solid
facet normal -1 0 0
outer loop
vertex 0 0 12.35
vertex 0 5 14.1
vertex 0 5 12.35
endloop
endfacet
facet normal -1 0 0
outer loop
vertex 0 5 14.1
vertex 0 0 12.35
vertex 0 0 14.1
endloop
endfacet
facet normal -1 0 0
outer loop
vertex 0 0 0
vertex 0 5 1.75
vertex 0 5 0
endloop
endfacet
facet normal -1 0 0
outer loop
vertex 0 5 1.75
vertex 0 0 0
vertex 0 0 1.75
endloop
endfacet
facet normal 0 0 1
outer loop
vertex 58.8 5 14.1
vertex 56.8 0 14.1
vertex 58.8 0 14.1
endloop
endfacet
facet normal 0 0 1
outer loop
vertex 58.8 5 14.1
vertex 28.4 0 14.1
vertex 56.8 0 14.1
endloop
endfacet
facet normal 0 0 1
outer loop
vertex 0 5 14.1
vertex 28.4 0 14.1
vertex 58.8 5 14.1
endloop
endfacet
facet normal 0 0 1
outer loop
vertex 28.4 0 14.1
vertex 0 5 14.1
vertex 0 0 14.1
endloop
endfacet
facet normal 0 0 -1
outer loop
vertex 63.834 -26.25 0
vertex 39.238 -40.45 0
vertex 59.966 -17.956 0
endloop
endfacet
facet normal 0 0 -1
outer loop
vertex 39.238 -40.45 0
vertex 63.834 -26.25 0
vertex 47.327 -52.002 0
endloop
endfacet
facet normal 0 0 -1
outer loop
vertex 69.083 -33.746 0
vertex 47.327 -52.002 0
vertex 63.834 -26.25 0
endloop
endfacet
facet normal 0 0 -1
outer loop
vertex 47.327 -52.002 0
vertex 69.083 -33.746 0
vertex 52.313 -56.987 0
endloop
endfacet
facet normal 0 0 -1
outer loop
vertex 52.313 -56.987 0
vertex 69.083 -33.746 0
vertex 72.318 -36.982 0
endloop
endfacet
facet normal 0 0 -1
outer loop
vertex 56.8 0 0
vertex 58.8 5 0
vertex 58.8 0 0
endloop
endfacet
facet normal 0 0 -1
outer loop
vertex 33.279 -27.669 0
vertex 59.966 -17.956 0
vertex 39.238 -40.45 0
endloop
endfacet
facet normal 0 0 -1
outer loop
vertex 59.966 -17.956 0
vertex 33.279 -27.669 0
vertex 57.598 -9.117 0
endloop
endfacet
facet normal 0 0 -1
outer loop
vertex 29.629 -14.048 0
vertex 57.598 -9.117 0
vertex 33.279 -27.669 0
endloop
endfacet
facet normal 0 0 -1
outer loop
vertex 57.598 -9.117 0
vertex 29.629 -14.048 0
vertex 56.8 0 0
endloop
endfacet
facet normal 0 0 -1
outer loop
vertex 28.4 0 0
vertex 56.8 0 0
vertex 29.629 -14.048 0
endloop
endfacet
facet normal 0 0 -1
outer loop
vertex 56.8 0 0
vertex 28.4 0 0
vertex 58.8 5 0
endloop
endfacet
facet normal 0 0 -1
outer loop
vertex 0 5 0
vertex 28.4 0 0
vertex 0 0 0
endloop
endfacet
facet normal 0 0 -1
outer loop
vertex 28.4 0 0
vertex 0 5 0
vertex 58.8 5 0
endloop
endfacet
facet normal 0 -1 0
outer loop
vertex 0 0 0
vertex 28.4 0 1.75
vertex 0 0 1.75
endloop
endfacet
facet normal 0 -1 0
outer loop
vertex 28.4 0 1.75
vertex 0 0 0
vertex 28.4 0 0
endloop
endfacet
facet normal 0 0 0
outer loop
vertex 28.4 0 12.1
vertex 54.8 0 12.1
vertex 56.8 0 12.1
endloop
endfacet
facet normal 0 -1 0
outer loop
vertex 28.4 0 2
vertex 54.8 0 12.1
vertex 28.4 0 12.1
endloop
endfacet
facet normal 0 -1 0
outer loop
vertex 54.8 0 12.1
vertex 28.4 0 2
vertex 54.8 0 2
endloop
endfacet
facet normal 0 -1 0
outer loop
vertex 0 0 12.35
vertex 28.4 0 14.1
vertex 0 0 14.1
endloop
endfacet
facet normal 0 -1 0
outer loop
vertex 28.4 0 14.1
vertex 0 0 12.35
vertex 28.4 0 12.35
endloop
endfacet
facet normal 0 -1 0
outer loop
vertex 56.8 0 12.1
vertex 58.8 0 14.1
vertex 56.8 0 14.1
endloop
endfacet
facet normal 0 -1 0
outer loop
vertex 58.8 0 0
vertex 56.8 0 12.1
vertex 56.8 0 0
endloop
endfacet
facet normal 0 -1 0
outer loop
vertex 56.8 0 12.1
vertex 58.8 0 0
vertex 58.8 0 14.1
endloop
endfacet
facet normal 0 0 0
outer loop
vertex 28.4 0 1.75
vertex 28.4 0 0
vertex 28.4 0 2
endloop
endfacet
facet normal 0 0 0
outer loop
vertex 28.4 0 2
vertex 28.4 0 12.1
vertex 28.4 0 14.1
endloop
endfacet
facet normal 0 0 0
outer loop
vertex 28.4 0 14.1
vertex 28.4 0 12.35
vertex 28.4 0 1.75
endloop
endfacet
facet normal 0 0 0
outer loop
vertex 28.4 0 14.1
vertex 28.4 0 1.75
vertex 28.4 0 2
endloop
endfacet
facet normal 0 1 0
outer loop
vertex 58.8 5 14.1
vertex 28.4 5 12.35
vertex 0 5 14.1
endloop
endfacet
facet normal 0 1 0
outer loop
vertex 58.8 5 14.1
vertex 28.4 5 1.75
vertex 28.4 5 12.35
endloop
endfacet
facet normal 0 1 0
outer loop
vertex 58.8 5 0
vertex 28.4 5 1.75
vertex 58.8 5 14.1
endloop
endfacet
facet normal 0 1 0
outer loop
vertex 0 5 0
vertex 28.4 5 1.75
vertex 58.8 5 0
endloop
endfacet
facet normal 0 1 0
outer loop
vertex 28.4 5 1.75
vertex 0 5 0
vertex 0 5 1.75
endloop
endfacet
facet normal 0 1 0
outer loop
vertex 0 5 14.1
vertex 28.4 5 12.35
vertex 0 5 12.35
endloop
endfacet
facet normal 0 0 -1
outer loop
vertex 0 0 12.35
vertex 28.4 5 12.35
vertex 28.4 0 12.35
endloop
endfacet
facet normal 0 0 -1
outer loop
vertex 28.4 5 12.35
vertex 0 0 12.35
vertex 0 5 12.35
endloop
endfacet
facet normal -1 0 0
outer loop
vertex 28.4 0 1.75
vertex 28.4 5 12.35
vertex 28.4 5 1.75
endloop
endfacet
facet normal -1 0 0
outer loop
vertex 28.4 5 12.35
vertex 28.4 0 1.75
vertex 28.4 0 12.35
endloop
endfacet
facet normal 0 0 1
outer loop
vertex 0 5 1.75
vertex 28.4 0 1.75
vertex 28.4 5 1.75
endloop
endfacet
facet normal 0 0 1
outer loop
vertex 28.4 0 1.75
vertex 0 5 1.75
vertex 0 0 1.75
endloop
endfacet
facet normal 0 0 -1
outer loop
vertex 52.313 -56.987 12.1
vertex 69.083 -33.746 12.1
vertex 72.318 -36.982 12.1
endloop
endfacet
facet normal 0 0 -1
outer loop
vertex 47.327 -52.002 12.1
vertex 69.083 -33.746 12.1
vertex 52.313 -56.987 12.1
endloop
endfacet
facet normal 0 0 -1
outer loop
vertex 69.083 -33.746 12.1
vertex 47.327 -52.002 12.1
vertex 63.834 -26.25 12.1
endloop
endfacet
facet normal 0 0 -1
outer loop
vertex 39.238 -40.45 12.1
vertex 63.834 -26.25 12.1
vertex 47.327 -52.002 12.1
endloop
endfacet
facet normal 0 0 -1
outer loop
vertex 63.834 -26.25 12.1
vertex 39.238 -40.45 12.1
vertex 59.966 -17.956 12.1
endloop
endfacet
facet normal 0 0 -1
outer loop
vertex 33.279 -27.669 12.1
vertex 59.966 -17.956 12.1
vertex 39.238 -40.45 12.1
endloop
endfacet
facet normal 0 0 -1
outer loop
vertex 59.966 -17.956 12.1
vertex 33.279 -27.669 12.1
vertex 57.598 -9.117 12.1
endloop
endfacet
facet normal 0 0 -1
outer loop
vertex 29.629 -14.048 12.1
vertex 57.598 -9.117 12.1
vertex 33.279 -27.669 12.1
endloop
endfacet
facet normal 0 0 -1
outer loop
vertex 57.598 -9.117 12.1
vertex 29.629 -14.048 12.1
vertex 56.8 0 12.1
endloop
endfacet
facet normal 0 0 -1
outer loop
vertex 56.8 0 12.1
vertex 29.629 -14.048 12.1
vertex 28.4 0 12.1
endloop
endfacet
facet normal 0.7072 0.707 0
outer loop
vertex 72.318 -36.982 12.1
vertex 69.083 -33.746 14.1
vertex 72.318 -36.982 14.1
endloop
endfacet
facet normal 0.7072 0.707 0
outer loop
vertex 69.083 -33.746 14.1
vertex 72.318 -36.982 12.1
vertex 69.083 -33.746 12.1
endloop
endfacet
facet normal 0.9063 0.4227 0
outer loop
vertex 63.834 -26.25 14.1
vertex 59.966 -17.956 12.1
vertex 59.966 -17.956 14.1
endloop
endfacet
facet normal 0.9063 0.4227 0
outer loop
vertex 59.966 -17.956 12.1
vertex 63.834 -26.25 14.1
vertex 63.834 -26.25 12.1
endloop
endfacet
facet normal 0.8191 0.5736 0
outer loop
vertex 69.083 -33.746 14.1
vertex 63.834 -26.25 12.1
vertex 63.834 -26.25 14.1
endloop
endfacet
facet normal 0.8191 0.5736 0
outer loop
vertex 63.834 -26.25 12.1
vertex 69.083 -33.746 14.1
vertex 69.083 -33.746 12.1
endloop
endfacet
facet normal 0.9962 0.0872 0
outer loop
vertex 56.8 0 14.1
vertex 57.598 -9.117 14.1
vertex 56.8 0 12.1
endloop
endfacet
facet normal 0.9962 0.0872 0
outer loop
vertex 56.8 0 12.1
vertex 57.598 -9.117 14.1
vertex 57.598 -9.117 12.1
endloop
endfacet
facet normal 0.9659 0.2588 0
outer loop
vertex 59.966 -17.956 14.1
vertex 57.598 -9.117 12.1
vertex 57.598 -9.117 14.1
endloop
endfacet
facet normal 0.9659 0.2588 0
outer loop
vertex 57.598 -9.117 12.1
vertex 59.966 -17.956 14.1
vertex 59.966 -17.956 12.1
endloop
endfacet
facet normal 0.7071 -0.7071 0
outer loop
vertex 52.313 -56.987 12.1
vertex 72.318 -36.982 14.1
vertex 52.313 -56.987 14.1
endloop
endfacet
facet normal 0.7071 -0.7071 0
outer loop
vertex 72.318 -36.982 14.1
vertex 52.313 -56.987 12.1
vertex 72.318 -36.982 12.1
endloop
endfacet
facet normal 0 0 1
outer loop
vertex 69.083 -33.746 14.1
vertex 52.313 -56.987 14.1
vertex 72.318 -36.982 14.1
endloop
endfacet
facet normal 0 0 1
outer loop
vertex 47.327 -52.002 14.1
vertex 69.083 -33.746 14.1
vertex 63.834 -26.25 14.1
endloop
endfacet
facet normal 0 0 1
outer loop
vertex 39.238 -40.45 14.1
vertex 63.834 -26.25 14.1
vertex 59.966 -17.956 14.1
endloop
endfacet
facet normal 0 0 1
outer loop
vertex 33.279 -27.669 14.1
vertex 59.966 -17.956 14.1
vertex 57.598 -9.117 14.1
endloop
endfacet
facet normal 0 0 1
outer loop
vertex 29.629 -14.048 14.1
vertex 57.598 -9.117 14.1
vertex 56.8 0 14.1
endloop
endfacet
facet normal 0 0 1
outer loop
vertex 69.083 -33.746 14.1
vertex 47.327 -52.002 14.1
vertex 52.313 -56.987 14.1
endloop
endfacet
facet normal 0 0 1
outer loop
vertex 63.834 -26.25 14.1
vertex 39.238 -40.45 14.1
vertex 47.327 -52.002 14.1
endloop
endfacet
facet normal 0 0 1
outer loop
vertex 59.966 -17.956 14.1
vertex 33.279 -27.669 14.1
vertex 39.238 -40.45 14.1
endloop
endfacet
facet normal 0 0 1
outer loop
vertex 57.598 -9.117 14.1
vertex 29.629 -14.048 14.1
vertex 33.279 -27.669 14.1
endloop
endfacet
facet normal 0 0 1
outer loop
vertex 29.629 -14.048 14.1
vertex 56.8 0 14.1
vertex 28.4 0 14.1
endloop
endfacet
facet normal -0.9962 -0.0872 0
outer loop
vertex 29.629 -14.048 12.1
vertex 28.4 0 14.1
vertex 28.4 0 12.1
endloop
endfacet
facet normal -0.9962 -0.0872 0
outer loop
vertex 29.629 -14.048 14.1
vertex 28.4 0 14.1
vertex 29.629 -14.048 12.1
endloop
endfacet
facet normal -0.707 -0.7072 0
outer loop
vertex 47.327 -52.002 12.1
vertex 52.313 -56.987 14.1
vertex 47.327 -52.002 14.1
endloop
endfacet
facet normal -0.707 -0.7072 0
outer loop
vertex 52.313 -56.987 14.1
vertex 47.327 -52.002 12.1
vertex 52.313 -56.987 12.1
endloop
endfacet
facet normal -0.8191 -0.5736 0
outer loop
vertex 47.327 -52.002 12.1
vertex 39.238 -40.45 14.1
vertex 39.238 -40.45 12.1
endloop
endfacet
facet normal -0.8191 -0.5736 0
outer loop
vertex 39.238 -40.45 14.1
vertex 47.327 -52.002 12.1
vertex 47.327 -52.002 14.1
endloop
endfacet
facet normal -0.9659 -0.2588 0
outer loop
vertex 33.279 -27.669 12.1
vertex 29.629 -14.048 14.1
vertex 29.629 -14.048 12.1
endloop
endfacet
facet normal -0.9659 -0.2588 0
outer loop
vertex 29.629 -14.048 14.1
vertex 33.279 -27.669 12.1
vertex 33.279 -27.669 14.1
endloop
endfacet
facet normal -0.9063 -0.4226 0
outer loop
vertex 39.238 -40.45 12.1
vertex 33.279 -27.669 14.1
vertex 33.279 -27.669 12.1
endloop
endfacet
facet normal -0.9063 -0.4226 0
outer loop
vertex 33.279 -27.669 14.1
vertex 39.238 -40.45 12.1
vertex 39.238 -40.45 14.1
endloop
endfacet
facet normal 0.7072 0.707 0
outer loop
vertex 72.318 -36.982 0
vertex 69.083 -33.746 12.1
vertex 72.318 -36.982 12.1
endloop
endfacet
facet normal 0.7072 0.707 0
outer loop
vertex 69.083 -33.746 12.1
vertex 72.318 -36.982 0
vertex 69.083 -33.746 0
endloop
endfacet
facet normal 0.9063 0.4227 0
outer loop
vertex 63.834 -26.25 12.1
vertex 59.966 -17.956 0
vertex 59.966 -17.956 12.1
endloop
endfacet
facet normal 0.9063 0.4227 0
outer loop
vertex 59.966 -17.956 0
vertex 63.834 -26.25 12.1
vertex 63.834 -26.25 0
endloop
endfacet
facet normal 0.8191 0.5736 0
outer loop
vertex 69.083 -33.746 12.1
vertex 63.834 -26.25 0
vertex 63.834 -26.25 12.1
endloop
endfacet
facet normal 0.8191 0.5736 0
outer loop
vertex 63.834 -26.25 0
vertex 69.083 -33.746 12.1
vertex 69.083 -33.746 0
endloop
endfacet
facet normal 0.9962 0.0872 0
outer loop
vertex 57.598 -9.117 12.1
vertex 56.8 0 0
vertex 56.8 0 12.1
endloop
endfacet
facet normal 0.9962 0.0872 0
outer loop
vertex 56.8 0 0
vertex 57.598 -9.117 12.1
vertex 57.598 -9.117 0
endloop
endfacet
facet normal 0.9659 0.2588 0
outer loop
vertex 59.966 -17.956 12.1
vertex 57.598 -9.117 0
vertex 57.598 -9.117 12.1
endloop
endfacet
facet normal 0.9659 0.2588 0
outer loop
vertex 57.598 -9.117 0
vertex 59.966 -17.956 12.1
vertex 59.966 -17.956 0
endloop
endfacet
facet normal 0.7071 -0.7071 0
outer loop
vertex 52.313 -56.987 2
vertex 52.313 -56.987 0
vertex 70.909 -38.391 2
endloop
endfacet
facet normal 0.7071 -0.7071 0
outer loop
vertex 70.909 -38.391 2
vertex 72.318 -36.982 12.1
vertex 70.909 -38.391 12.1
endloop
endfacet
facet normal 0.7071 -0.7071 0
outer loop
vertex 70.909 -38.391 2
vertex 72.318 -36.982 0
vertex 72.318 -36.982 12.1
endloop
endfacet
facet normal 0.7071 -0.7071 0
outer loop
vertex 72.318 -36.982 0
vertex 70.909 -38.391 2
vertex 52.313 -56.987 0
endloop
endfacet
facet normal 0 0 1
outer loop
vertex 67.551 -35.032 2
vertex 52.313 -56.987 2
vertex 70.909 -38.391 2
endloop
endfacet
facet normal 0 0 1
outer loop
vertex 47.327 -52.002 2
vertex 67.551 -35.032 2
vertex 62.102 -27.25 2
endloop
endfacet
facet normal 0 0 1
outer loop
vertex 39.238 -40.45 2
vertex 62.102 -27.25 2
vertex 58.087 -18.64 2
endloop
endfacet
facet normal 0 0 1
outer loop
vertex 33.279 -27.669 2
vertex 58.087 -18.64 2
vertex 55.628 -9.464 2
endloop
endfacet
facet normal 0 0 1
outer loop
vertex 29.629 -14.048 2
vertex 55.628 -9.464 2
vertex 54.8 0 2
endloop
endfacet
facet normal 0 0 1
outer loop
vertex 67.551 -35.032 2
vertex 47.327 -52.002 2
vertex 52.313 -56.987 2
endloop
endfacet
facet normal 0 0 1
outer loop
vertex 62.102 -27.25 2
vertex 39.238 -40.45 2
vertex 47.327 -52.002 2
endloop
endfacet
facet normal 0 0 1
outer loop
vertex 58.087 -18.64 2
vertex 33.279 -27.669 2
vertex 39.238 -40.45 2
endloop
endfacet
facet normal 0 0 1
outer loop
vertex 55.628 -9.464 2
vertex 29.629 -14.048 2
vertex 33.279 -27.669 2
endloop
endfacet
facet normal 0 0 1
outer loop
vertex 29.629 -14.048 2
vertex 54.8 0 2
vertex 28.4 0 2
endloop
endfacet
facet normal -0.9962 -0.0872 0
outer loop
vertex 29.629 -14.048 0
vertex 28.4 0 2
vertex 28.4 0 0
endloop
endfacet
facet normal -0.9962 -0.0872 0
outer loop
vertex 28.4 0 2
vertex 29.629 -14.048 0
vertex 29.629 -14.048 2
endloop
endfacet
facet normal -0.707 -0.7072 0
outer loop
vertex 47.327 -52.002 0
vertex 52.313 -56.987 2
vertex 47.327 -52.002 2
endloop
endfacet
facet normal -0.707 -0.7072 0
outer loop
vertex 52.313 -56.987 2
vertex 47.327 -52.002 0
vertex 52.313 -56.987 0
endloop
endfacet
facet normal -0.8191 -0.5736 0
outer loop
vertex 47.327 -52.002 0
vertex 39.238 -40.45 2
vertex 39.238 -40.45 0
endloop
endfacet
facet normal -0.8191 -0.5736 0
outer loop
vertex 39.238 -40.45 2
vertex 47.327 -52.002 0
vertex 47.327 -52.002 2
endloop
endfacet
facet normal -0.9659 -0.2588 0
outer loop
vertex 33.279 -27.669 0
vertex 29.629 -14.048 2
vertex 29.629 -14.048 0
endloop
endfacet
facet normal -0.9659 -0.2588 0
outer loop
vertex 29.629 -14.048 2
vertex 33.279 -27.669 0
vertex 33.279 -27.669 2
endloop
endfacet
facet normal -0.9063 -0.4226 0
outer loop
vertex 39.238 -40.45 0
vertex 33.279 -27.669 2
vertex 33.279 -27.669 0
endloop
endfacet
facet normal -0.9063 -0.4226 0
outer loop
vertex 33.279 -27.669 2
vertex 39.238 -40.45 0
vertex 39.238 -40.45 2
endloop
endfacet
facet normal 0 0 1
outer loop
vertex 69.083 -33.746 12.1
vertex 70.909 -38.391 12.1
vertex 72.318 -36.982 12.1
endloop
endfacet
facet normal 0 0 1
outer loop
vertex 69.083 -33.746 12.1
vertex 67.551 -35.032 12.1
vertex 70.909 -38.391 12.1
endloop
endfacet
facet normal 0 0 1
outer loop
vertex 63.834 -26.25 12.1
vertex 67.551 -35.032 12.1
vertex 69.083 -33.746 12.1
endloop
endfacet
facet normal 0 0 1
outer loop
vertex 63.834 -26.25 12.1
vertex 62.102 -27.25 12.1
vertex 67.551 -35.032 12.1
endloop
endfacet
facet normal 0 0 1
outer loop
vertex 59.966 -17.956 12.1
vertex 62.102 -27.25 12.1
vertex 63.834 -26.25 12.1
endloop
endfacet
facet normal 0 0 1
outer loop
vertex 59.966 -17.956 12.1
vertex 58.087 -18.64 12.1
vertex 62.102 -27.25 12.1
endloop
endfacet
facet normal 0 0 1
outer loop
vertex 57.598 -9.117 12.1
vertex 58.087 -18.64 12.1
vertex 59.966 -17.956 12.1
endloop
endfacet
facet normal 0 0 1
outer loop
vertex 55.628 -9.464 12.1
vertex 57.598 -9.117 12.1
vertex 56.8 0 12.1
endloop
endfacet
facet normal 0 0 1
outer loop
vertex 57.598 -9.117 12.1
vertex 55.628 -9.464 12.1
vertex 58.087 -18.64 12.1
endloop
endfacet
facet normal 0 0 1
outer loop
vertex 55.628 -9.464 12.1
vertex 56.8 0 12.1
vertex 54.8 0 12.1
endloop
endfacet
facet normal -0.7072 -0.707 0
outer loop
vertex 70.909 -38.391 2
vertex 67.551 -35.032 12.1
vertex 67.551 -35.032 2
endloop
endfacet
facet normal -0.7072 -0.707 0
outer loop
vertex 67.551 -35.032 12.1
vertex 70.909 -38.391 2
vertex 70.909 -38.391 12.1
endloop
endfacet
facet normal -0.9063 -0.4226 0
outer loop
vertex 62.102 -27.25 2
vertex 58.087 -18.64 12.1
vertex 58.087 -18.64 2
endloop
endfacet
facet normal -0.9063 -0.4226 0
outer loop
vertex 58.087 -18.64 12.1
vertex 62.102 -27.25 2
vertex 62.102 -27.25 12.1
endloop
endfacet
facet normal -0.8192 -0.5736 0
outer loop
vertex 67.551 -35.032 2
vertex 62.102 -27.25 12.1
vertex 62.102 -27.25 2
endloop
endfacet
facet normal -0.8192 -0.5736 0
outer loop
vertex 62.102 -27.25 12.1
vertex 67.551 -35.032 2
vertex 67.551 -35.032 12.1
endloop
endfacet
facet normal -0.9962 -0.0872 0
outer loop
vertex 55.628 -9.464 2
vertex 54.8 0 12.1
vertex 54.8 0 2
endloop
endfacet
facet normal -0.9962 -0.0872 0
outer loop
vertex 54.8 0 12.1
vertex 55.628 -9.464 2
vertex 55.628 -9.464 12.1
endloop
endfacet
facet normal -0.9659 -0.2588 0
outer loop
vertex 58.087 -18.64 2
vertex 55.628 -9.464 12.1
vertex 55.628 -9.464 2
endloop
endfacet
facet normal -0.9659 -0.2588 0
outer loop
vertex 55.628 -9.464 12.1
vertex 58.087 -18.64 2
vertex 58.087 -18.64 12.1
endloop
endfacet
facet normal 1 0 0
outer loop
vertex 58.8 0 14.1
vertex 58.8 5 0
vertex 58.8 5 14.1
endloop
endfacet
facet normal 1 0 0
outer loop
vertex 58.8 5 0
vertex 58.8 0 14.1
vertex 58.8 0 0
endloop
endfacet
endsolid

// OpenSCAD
//General
$fn = 36;
tolerance = 0.5;
wall = 2;

clip();

module clip() {
  h_bar = wall*2 + 6.1;
  l_bar = 26.4 + wall*2; // length of metal + extra space after and before
  depth_bar = 5;

  r_holder = 105/2; // dimensions of bag holder
  r_holder_outter = r_holder+28.4;
  h_holder = wall;
  color("blue")
  difference(){
    cube([l_bar, depth_bar, h_bar+wall*2]); // outter clip
    translate([-wall,0,wall-tolerance/2])
    cube([l_bar, depth_bar, h_bar+tolerance]); // spacing of metal bar
  }
  translate([l_bar,0,0])
  cube([28.4, depth_bar, h_bar+wall*2]);
  // Below is the clip for the circular garbage bag holder
  // top plate
  color("blue")
  translate([r_holder_outter+l_bar-wall,0,h_bar+wall])
  garbageHolder();
  // bottom plate
  translate([r_holder_outter+l_bar-wall,0,0])
  garbageHolder();
  // middle portion
  translate([r_holder_outter+l_bar-wall,0,wall])
  difference(){
    cylinder(r=r_holder+wall, h=h_bar);
    killOutsideQuarters();
    color("red")
    cylinder(r=r_holder, h=h_bar);
  }

  module garbageHolder(){
    difference(){
      union(){
        cylinder(r=r_holder_outter, h=h_holder);
      }
      killOutsideQuarters();
    }
  }

  module killOutsideQuarters() {
    // Below cubes to kill off 3 quarters of the circle
    cylinder(r=r_holder, h=h_bar);
    color("purple")
    rotate([0,0,-45])
    translate([0,-r_holder_outter,0])
    cube([r_holder_outter*2,r_holder_outter*2,h_bar+wall*2]);
    translate([-r_holder_outter,0,0])
    cube([r_holder_outter*2,r_holder_outter*2,h_bar+wall*2]);
    color("red")
    cylinder(r=r_holder, h=h_holder);
  }
}
